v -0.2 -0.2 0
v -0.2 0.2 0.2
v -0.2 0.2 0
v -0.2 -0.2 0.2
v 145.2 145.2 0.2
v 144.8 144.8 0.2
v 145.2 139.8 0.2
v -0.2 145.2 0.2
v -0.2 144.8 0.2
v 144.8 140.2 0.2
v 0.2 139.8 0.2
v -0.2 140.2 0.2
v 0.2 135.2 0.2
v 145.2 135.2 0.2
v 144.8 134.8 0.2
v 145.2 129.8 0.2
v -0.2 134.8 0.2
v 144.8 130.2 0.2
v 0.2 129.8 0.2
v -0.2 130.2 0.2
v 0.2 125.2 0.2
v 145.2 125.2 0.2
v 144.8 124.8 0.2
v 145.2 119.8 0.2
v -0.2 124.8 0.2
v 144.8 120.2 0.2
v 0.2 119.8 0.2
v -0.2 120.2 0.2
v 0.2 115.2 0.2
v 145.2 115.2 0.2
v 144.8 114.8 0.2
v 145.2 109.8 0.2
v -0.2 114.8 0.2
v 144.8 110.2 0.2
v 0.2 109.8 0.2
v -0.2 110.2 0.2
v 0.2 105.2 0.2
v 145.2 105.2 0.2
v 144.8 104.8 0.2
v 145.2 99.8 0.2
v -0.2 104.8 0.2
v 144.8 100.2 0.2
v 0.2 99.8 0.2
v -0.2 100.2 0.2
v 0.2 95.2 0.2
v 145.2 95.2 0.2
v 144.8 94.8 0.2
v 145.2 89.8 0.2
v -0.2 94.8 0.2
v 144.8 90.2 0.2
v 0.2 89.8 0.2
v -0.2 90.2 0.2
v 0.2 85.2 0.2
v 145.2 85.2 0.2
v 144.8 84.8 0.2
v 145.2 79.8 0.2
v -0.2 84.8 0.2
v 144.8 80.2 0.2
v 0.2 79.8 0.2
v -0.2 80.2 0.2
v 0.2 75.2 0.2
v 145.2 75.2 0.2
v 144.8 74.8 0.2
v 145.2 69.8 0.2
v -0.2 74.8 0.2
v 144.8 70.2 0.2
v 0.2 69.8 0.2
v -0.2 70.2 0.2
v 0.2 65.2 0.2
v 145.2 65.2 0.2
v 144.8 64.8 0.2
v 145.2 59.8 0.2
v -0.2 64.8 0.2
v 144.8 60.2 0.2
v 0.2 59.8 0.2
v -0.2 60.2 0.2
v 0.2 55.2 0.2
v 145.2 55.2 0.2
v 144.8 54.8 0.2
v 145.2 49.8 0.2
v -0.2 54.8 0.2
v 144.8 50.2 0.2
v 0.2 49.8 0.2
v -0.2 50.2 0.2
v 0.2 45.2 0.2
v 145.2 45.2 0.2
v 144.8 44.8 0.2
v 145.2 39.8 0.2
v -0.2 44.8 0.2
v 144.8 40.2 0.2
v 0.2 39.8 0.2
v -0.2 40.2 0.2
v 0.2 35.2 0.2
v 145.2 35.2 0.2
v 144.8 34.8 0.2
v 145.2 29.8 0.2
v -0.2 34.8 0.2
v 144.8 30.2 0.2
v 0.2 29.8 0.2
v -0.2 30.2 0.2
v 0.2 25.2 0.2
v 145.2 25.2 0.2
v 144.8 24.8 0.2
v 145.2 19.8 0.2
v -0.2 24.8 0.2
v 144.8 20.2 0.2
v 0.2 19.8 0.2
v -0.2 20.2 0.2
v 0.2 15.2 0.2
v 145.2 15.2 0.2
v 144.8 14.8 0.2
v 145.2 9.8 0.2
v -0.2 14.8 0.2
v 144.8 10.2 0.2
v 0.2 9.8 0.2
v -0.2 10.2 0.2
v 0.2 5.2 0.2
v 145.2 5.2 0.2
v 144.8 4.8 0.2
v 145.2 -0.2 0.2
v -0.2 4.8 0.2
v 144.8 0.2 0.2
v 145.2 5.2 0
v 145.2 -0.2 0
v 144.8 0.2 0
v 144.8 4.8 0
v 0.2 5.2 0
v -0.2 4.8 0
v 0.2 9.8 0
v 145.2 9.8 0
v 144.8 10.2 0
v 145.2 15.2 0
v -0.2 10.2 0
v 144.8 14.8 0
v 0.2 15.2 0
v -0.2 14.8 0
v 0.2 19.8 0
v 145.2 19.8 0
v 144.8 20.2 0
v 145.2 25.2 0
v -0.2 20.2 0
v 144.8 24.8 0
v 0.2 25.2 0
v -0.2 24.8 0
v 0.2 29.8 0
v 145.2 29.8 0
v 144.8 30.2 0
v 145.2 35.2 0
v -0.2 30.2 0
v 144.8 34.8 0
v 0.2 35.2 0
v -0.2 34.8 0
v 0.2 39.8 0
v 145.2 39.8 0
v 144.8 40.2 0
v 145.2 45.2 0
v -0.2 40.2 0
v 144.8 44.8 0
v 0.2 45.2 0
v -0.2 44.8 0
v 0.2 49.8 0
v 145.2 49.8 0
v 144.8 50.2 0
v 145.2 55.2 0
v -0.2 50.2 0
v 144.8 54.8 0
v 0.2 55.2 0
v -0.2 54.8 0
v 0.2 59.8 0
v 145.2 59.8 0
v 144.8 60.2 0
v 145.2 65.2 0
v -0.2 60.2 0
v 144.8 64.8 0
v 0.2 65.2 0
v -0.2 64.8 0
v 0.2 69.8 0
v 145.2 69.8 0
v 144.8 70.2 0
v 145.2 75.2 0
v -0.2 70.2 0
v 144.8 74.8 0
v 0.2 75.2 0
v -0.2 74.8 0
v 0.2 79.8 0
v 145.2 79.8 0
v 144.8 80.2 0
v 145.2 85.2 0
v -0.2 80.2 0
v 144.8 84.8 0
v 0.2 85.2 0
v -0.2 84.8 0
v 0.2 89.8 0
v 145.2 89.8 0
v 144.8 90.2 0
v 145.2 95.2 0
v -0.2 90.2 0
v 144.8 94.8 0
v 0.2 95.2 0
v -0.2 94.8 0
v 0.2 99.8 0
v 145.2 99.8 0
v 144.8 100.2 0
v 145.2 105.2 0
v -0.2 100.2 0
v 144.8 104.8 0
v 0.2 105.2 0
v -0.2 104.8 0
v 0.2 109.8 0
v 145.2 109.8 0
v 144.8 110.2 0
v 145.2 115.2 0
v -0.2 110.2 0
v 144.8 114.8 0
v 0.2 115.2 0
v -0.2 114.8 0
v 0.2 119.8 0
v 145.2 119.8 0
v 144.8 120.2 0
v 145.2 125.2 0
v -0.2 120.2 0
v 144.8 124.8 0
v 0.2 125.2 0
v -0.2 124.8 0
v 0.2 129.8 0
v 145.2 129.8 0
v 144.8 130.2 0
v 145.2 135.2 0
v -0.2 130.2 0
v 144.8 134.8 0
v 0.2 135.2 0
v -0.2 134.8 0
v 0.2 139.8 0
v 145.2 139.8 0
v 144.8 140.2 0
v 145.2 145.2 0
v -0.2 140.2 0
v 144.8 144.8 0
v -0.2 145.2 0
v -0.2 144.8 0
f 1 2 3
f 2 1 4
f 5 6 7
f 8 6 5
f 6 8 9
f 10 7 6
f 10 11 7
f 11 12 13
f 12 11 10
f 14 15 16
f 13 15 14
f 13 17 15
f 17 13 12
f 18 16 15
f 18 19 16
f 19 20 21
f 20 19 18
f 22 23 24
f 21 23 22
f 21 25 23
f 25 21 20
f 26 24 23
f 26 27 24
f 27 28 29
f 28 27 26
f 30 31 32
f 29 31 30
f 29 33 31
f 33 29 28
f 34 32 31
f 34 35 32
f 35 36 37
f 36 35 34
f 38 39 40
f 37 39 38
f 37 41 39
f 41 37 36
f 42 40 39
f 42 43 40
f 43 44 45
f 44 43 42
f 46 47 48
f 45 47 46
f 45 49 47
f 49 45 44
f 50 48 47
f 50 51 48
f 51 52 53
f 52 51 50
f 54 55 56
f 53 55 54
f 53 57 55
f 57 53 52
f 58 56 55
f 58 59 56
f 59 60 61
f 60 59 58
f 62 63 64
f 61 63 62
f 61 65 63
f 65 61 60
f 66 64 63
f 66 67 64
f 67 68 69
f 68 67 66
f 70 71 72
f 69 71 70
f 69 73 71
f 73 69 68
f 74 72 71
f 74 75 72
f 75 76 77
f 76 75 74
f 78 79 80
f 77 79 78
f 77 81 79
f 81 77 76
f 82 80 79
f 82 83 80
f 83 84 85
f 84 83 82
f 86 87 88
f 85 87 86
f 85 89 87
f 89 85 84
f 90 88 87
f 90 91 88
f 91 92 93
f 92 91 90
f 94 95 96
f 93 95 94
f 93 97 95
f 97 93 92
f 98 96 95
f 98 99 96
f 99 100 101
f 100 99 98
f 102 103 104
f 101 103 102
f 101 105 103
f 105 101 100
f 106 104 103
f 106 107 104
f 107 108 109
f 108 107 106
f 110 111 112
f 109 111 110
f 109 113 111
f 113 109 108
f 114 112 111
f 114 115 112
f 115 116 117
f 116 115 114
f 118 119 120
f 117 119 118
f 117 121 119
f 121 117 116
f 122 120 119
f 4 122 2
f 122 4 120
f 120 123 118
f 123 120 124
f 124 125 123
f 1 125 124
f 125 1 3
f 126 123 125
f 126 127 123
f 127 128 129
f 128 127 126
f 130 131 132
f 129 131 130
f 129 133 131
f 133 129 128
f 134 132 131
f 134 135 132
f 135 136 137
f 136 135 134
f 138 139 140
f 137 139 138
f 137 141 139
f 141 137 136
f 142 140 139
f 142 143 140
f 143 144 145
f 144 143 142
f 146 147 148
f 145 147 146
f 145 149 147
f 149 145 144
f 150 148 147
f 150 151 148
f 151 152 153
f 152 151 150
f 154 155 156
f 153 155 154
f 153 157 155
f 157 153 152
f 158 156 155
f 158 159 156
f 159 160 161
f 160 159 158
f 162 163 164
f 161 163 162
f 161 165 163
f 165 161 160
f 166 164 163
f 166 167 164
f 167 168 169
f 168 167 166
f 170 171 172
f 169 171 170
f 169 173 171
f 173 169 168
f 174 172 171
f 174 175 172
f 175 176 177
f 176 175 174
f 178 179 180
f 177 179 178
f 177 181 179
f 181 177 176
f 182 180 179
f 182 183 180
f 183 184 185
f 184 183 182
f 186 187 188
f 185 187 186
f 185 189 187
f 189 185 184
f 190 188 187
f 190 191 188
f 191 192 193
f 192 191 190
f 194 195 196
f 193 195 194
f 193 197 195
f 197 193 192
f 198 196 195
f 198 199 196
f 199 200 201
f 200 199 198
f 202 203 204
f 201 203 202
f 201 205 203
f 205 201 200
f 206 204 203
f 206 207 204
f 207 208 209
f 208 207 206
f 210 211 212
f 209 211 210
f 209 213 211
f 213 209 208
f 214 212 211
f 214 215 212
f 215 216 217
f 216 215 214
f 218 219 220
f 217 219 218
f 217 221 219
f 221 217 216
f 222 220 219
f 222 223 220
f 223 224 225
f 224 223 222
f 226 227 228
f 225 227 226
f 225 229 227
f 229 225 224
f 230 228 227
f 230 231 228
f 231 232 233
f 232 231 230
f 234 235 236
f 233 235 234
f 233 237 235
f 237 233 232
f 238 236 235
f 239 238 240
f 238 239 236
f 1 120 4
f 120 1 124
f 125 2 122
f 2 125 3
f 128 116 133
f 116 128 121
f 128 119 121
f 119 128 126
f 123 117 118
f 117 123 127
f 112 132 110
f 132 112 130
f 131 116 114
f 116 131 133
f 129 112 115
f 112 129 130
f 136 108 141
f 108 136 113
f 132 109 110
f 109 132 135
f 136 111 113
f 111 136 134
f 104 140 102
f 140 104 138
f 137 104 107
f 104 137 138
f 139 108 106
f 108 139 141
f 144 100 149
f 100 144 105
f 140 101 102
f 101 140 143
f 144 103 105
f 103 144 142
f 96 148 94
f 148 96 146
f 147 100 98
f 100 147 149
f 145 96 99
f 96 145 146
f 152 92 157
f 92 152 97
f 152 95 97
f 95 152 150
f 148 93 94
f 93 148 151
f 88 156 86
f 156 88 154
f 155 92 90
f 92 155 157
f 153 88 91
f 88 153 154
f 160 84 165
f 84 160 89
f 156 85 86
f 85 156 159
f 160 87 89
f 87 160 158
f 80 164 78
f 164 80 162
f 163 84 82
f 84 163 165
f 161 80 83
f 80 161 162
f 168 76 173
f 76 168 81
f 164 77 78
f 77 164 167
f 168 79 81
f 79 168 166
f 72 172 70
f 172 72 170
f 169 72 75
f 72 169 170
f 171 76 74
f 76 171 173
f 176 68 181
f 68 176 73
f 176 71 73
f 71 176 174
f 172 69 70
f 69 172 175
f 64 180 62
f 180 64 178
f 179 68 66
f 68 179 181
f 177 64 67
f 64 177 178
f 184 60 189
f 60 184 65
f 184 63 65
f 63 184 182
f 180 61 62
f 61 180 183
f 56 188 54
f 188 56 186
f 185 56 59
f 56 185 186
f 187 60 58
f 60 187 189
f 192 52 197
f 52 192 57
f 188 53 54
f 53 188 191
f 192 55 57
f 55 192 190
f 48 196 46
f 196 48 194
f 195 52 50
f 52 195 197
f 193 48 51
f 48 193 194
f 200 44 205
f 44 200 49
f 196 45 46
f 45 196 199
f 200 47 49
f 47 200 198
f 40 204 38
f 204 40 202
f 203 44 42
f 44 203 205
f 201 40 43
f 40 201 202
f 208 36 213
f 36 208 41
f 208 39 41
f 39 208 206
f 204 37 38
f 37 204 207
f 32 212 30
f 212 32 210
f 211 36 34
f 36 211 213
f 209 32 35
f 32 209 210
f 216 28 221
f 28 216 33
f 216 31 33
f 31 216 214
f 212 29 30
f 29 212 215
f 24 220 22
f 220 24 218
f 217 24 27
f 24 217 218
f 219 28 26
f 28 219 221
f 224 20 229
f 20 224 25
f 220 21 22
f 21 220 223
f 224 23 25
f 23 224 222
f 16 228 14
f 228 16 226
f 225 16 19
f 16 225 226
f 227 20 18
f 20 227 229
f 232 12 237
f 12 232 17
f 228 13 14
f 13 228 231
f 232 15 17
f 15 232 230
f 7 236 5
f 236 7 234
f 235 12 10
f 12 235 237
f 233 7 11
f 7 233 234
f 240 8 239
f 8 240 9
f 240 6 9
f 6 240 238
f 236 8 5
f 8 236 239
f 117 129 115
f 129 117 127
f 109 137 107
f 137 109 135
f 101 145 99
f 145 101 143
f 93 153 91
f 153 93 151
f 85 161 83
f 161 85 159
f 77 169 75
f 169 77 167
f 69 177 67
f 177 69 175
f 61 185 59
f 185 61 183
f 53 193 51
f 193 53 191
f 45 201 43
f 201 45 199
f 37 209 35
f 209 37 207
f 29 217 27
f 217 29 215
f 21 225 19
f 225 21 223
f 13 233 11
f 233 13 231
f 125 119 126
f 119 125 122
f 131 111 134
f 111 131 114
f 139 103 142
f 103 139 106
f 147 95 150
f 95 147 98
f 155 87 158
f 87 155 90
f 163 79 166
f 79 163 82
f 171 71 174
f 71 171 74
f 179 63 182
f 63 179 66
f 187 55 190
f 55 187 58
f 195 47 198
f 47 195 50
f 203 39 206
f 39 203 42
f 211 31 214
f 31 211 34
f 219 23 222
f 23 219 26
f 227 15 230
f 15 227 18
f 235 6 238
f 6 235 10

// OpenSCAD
// Babysteps pattern generator

pitch = 5;
line_width = 0.4;
height = 0.2;
line_length = 150;
num_rows = 30;
num_cols = 30;

// Compute translation to move [0, 0] to grid point
// [r, c].
function offset(r, c) = [
  c * pitch - line_width/2,  // x offset
  r * pitch - line_width/2   // y offset
];
  
// Vertical bar
module vbar(r1, r2, c) {
  min_row = min(r1, r2);
  max_row = max(r1, r2);
  n_rows = max_row - min_row;
  translate(offset(min_row, c))
    cube([line_width, pitch*n_rows+line_width, height]);
}

// Horizontal bar
module hbar(r, c1, c2) {
  min_col = min(c1, c2);
  max_col = max(c1, c2);
  n_cols = max_col - min_col;
  translate(offset(r, min_col))
    cube([pitch*n_cols+line_width, line_width, height]);
}

// Horizontal lines
for (r = [0:num_rows-1]) {
  hbar(r, 0, num_cols-1);
}

// Left hand connectors
for (r = [1:2:num_rows-2]) {
  vbar(r, r+1, 0);
}

// Right hand connectors
for (r = [0:2:num_rows-2]) {
  vbar(r, r+1, num_cols-1);
}

// Rear start guide
//vbar(0, num_rows, -1);
//hbar(0, -1, 0);

  
